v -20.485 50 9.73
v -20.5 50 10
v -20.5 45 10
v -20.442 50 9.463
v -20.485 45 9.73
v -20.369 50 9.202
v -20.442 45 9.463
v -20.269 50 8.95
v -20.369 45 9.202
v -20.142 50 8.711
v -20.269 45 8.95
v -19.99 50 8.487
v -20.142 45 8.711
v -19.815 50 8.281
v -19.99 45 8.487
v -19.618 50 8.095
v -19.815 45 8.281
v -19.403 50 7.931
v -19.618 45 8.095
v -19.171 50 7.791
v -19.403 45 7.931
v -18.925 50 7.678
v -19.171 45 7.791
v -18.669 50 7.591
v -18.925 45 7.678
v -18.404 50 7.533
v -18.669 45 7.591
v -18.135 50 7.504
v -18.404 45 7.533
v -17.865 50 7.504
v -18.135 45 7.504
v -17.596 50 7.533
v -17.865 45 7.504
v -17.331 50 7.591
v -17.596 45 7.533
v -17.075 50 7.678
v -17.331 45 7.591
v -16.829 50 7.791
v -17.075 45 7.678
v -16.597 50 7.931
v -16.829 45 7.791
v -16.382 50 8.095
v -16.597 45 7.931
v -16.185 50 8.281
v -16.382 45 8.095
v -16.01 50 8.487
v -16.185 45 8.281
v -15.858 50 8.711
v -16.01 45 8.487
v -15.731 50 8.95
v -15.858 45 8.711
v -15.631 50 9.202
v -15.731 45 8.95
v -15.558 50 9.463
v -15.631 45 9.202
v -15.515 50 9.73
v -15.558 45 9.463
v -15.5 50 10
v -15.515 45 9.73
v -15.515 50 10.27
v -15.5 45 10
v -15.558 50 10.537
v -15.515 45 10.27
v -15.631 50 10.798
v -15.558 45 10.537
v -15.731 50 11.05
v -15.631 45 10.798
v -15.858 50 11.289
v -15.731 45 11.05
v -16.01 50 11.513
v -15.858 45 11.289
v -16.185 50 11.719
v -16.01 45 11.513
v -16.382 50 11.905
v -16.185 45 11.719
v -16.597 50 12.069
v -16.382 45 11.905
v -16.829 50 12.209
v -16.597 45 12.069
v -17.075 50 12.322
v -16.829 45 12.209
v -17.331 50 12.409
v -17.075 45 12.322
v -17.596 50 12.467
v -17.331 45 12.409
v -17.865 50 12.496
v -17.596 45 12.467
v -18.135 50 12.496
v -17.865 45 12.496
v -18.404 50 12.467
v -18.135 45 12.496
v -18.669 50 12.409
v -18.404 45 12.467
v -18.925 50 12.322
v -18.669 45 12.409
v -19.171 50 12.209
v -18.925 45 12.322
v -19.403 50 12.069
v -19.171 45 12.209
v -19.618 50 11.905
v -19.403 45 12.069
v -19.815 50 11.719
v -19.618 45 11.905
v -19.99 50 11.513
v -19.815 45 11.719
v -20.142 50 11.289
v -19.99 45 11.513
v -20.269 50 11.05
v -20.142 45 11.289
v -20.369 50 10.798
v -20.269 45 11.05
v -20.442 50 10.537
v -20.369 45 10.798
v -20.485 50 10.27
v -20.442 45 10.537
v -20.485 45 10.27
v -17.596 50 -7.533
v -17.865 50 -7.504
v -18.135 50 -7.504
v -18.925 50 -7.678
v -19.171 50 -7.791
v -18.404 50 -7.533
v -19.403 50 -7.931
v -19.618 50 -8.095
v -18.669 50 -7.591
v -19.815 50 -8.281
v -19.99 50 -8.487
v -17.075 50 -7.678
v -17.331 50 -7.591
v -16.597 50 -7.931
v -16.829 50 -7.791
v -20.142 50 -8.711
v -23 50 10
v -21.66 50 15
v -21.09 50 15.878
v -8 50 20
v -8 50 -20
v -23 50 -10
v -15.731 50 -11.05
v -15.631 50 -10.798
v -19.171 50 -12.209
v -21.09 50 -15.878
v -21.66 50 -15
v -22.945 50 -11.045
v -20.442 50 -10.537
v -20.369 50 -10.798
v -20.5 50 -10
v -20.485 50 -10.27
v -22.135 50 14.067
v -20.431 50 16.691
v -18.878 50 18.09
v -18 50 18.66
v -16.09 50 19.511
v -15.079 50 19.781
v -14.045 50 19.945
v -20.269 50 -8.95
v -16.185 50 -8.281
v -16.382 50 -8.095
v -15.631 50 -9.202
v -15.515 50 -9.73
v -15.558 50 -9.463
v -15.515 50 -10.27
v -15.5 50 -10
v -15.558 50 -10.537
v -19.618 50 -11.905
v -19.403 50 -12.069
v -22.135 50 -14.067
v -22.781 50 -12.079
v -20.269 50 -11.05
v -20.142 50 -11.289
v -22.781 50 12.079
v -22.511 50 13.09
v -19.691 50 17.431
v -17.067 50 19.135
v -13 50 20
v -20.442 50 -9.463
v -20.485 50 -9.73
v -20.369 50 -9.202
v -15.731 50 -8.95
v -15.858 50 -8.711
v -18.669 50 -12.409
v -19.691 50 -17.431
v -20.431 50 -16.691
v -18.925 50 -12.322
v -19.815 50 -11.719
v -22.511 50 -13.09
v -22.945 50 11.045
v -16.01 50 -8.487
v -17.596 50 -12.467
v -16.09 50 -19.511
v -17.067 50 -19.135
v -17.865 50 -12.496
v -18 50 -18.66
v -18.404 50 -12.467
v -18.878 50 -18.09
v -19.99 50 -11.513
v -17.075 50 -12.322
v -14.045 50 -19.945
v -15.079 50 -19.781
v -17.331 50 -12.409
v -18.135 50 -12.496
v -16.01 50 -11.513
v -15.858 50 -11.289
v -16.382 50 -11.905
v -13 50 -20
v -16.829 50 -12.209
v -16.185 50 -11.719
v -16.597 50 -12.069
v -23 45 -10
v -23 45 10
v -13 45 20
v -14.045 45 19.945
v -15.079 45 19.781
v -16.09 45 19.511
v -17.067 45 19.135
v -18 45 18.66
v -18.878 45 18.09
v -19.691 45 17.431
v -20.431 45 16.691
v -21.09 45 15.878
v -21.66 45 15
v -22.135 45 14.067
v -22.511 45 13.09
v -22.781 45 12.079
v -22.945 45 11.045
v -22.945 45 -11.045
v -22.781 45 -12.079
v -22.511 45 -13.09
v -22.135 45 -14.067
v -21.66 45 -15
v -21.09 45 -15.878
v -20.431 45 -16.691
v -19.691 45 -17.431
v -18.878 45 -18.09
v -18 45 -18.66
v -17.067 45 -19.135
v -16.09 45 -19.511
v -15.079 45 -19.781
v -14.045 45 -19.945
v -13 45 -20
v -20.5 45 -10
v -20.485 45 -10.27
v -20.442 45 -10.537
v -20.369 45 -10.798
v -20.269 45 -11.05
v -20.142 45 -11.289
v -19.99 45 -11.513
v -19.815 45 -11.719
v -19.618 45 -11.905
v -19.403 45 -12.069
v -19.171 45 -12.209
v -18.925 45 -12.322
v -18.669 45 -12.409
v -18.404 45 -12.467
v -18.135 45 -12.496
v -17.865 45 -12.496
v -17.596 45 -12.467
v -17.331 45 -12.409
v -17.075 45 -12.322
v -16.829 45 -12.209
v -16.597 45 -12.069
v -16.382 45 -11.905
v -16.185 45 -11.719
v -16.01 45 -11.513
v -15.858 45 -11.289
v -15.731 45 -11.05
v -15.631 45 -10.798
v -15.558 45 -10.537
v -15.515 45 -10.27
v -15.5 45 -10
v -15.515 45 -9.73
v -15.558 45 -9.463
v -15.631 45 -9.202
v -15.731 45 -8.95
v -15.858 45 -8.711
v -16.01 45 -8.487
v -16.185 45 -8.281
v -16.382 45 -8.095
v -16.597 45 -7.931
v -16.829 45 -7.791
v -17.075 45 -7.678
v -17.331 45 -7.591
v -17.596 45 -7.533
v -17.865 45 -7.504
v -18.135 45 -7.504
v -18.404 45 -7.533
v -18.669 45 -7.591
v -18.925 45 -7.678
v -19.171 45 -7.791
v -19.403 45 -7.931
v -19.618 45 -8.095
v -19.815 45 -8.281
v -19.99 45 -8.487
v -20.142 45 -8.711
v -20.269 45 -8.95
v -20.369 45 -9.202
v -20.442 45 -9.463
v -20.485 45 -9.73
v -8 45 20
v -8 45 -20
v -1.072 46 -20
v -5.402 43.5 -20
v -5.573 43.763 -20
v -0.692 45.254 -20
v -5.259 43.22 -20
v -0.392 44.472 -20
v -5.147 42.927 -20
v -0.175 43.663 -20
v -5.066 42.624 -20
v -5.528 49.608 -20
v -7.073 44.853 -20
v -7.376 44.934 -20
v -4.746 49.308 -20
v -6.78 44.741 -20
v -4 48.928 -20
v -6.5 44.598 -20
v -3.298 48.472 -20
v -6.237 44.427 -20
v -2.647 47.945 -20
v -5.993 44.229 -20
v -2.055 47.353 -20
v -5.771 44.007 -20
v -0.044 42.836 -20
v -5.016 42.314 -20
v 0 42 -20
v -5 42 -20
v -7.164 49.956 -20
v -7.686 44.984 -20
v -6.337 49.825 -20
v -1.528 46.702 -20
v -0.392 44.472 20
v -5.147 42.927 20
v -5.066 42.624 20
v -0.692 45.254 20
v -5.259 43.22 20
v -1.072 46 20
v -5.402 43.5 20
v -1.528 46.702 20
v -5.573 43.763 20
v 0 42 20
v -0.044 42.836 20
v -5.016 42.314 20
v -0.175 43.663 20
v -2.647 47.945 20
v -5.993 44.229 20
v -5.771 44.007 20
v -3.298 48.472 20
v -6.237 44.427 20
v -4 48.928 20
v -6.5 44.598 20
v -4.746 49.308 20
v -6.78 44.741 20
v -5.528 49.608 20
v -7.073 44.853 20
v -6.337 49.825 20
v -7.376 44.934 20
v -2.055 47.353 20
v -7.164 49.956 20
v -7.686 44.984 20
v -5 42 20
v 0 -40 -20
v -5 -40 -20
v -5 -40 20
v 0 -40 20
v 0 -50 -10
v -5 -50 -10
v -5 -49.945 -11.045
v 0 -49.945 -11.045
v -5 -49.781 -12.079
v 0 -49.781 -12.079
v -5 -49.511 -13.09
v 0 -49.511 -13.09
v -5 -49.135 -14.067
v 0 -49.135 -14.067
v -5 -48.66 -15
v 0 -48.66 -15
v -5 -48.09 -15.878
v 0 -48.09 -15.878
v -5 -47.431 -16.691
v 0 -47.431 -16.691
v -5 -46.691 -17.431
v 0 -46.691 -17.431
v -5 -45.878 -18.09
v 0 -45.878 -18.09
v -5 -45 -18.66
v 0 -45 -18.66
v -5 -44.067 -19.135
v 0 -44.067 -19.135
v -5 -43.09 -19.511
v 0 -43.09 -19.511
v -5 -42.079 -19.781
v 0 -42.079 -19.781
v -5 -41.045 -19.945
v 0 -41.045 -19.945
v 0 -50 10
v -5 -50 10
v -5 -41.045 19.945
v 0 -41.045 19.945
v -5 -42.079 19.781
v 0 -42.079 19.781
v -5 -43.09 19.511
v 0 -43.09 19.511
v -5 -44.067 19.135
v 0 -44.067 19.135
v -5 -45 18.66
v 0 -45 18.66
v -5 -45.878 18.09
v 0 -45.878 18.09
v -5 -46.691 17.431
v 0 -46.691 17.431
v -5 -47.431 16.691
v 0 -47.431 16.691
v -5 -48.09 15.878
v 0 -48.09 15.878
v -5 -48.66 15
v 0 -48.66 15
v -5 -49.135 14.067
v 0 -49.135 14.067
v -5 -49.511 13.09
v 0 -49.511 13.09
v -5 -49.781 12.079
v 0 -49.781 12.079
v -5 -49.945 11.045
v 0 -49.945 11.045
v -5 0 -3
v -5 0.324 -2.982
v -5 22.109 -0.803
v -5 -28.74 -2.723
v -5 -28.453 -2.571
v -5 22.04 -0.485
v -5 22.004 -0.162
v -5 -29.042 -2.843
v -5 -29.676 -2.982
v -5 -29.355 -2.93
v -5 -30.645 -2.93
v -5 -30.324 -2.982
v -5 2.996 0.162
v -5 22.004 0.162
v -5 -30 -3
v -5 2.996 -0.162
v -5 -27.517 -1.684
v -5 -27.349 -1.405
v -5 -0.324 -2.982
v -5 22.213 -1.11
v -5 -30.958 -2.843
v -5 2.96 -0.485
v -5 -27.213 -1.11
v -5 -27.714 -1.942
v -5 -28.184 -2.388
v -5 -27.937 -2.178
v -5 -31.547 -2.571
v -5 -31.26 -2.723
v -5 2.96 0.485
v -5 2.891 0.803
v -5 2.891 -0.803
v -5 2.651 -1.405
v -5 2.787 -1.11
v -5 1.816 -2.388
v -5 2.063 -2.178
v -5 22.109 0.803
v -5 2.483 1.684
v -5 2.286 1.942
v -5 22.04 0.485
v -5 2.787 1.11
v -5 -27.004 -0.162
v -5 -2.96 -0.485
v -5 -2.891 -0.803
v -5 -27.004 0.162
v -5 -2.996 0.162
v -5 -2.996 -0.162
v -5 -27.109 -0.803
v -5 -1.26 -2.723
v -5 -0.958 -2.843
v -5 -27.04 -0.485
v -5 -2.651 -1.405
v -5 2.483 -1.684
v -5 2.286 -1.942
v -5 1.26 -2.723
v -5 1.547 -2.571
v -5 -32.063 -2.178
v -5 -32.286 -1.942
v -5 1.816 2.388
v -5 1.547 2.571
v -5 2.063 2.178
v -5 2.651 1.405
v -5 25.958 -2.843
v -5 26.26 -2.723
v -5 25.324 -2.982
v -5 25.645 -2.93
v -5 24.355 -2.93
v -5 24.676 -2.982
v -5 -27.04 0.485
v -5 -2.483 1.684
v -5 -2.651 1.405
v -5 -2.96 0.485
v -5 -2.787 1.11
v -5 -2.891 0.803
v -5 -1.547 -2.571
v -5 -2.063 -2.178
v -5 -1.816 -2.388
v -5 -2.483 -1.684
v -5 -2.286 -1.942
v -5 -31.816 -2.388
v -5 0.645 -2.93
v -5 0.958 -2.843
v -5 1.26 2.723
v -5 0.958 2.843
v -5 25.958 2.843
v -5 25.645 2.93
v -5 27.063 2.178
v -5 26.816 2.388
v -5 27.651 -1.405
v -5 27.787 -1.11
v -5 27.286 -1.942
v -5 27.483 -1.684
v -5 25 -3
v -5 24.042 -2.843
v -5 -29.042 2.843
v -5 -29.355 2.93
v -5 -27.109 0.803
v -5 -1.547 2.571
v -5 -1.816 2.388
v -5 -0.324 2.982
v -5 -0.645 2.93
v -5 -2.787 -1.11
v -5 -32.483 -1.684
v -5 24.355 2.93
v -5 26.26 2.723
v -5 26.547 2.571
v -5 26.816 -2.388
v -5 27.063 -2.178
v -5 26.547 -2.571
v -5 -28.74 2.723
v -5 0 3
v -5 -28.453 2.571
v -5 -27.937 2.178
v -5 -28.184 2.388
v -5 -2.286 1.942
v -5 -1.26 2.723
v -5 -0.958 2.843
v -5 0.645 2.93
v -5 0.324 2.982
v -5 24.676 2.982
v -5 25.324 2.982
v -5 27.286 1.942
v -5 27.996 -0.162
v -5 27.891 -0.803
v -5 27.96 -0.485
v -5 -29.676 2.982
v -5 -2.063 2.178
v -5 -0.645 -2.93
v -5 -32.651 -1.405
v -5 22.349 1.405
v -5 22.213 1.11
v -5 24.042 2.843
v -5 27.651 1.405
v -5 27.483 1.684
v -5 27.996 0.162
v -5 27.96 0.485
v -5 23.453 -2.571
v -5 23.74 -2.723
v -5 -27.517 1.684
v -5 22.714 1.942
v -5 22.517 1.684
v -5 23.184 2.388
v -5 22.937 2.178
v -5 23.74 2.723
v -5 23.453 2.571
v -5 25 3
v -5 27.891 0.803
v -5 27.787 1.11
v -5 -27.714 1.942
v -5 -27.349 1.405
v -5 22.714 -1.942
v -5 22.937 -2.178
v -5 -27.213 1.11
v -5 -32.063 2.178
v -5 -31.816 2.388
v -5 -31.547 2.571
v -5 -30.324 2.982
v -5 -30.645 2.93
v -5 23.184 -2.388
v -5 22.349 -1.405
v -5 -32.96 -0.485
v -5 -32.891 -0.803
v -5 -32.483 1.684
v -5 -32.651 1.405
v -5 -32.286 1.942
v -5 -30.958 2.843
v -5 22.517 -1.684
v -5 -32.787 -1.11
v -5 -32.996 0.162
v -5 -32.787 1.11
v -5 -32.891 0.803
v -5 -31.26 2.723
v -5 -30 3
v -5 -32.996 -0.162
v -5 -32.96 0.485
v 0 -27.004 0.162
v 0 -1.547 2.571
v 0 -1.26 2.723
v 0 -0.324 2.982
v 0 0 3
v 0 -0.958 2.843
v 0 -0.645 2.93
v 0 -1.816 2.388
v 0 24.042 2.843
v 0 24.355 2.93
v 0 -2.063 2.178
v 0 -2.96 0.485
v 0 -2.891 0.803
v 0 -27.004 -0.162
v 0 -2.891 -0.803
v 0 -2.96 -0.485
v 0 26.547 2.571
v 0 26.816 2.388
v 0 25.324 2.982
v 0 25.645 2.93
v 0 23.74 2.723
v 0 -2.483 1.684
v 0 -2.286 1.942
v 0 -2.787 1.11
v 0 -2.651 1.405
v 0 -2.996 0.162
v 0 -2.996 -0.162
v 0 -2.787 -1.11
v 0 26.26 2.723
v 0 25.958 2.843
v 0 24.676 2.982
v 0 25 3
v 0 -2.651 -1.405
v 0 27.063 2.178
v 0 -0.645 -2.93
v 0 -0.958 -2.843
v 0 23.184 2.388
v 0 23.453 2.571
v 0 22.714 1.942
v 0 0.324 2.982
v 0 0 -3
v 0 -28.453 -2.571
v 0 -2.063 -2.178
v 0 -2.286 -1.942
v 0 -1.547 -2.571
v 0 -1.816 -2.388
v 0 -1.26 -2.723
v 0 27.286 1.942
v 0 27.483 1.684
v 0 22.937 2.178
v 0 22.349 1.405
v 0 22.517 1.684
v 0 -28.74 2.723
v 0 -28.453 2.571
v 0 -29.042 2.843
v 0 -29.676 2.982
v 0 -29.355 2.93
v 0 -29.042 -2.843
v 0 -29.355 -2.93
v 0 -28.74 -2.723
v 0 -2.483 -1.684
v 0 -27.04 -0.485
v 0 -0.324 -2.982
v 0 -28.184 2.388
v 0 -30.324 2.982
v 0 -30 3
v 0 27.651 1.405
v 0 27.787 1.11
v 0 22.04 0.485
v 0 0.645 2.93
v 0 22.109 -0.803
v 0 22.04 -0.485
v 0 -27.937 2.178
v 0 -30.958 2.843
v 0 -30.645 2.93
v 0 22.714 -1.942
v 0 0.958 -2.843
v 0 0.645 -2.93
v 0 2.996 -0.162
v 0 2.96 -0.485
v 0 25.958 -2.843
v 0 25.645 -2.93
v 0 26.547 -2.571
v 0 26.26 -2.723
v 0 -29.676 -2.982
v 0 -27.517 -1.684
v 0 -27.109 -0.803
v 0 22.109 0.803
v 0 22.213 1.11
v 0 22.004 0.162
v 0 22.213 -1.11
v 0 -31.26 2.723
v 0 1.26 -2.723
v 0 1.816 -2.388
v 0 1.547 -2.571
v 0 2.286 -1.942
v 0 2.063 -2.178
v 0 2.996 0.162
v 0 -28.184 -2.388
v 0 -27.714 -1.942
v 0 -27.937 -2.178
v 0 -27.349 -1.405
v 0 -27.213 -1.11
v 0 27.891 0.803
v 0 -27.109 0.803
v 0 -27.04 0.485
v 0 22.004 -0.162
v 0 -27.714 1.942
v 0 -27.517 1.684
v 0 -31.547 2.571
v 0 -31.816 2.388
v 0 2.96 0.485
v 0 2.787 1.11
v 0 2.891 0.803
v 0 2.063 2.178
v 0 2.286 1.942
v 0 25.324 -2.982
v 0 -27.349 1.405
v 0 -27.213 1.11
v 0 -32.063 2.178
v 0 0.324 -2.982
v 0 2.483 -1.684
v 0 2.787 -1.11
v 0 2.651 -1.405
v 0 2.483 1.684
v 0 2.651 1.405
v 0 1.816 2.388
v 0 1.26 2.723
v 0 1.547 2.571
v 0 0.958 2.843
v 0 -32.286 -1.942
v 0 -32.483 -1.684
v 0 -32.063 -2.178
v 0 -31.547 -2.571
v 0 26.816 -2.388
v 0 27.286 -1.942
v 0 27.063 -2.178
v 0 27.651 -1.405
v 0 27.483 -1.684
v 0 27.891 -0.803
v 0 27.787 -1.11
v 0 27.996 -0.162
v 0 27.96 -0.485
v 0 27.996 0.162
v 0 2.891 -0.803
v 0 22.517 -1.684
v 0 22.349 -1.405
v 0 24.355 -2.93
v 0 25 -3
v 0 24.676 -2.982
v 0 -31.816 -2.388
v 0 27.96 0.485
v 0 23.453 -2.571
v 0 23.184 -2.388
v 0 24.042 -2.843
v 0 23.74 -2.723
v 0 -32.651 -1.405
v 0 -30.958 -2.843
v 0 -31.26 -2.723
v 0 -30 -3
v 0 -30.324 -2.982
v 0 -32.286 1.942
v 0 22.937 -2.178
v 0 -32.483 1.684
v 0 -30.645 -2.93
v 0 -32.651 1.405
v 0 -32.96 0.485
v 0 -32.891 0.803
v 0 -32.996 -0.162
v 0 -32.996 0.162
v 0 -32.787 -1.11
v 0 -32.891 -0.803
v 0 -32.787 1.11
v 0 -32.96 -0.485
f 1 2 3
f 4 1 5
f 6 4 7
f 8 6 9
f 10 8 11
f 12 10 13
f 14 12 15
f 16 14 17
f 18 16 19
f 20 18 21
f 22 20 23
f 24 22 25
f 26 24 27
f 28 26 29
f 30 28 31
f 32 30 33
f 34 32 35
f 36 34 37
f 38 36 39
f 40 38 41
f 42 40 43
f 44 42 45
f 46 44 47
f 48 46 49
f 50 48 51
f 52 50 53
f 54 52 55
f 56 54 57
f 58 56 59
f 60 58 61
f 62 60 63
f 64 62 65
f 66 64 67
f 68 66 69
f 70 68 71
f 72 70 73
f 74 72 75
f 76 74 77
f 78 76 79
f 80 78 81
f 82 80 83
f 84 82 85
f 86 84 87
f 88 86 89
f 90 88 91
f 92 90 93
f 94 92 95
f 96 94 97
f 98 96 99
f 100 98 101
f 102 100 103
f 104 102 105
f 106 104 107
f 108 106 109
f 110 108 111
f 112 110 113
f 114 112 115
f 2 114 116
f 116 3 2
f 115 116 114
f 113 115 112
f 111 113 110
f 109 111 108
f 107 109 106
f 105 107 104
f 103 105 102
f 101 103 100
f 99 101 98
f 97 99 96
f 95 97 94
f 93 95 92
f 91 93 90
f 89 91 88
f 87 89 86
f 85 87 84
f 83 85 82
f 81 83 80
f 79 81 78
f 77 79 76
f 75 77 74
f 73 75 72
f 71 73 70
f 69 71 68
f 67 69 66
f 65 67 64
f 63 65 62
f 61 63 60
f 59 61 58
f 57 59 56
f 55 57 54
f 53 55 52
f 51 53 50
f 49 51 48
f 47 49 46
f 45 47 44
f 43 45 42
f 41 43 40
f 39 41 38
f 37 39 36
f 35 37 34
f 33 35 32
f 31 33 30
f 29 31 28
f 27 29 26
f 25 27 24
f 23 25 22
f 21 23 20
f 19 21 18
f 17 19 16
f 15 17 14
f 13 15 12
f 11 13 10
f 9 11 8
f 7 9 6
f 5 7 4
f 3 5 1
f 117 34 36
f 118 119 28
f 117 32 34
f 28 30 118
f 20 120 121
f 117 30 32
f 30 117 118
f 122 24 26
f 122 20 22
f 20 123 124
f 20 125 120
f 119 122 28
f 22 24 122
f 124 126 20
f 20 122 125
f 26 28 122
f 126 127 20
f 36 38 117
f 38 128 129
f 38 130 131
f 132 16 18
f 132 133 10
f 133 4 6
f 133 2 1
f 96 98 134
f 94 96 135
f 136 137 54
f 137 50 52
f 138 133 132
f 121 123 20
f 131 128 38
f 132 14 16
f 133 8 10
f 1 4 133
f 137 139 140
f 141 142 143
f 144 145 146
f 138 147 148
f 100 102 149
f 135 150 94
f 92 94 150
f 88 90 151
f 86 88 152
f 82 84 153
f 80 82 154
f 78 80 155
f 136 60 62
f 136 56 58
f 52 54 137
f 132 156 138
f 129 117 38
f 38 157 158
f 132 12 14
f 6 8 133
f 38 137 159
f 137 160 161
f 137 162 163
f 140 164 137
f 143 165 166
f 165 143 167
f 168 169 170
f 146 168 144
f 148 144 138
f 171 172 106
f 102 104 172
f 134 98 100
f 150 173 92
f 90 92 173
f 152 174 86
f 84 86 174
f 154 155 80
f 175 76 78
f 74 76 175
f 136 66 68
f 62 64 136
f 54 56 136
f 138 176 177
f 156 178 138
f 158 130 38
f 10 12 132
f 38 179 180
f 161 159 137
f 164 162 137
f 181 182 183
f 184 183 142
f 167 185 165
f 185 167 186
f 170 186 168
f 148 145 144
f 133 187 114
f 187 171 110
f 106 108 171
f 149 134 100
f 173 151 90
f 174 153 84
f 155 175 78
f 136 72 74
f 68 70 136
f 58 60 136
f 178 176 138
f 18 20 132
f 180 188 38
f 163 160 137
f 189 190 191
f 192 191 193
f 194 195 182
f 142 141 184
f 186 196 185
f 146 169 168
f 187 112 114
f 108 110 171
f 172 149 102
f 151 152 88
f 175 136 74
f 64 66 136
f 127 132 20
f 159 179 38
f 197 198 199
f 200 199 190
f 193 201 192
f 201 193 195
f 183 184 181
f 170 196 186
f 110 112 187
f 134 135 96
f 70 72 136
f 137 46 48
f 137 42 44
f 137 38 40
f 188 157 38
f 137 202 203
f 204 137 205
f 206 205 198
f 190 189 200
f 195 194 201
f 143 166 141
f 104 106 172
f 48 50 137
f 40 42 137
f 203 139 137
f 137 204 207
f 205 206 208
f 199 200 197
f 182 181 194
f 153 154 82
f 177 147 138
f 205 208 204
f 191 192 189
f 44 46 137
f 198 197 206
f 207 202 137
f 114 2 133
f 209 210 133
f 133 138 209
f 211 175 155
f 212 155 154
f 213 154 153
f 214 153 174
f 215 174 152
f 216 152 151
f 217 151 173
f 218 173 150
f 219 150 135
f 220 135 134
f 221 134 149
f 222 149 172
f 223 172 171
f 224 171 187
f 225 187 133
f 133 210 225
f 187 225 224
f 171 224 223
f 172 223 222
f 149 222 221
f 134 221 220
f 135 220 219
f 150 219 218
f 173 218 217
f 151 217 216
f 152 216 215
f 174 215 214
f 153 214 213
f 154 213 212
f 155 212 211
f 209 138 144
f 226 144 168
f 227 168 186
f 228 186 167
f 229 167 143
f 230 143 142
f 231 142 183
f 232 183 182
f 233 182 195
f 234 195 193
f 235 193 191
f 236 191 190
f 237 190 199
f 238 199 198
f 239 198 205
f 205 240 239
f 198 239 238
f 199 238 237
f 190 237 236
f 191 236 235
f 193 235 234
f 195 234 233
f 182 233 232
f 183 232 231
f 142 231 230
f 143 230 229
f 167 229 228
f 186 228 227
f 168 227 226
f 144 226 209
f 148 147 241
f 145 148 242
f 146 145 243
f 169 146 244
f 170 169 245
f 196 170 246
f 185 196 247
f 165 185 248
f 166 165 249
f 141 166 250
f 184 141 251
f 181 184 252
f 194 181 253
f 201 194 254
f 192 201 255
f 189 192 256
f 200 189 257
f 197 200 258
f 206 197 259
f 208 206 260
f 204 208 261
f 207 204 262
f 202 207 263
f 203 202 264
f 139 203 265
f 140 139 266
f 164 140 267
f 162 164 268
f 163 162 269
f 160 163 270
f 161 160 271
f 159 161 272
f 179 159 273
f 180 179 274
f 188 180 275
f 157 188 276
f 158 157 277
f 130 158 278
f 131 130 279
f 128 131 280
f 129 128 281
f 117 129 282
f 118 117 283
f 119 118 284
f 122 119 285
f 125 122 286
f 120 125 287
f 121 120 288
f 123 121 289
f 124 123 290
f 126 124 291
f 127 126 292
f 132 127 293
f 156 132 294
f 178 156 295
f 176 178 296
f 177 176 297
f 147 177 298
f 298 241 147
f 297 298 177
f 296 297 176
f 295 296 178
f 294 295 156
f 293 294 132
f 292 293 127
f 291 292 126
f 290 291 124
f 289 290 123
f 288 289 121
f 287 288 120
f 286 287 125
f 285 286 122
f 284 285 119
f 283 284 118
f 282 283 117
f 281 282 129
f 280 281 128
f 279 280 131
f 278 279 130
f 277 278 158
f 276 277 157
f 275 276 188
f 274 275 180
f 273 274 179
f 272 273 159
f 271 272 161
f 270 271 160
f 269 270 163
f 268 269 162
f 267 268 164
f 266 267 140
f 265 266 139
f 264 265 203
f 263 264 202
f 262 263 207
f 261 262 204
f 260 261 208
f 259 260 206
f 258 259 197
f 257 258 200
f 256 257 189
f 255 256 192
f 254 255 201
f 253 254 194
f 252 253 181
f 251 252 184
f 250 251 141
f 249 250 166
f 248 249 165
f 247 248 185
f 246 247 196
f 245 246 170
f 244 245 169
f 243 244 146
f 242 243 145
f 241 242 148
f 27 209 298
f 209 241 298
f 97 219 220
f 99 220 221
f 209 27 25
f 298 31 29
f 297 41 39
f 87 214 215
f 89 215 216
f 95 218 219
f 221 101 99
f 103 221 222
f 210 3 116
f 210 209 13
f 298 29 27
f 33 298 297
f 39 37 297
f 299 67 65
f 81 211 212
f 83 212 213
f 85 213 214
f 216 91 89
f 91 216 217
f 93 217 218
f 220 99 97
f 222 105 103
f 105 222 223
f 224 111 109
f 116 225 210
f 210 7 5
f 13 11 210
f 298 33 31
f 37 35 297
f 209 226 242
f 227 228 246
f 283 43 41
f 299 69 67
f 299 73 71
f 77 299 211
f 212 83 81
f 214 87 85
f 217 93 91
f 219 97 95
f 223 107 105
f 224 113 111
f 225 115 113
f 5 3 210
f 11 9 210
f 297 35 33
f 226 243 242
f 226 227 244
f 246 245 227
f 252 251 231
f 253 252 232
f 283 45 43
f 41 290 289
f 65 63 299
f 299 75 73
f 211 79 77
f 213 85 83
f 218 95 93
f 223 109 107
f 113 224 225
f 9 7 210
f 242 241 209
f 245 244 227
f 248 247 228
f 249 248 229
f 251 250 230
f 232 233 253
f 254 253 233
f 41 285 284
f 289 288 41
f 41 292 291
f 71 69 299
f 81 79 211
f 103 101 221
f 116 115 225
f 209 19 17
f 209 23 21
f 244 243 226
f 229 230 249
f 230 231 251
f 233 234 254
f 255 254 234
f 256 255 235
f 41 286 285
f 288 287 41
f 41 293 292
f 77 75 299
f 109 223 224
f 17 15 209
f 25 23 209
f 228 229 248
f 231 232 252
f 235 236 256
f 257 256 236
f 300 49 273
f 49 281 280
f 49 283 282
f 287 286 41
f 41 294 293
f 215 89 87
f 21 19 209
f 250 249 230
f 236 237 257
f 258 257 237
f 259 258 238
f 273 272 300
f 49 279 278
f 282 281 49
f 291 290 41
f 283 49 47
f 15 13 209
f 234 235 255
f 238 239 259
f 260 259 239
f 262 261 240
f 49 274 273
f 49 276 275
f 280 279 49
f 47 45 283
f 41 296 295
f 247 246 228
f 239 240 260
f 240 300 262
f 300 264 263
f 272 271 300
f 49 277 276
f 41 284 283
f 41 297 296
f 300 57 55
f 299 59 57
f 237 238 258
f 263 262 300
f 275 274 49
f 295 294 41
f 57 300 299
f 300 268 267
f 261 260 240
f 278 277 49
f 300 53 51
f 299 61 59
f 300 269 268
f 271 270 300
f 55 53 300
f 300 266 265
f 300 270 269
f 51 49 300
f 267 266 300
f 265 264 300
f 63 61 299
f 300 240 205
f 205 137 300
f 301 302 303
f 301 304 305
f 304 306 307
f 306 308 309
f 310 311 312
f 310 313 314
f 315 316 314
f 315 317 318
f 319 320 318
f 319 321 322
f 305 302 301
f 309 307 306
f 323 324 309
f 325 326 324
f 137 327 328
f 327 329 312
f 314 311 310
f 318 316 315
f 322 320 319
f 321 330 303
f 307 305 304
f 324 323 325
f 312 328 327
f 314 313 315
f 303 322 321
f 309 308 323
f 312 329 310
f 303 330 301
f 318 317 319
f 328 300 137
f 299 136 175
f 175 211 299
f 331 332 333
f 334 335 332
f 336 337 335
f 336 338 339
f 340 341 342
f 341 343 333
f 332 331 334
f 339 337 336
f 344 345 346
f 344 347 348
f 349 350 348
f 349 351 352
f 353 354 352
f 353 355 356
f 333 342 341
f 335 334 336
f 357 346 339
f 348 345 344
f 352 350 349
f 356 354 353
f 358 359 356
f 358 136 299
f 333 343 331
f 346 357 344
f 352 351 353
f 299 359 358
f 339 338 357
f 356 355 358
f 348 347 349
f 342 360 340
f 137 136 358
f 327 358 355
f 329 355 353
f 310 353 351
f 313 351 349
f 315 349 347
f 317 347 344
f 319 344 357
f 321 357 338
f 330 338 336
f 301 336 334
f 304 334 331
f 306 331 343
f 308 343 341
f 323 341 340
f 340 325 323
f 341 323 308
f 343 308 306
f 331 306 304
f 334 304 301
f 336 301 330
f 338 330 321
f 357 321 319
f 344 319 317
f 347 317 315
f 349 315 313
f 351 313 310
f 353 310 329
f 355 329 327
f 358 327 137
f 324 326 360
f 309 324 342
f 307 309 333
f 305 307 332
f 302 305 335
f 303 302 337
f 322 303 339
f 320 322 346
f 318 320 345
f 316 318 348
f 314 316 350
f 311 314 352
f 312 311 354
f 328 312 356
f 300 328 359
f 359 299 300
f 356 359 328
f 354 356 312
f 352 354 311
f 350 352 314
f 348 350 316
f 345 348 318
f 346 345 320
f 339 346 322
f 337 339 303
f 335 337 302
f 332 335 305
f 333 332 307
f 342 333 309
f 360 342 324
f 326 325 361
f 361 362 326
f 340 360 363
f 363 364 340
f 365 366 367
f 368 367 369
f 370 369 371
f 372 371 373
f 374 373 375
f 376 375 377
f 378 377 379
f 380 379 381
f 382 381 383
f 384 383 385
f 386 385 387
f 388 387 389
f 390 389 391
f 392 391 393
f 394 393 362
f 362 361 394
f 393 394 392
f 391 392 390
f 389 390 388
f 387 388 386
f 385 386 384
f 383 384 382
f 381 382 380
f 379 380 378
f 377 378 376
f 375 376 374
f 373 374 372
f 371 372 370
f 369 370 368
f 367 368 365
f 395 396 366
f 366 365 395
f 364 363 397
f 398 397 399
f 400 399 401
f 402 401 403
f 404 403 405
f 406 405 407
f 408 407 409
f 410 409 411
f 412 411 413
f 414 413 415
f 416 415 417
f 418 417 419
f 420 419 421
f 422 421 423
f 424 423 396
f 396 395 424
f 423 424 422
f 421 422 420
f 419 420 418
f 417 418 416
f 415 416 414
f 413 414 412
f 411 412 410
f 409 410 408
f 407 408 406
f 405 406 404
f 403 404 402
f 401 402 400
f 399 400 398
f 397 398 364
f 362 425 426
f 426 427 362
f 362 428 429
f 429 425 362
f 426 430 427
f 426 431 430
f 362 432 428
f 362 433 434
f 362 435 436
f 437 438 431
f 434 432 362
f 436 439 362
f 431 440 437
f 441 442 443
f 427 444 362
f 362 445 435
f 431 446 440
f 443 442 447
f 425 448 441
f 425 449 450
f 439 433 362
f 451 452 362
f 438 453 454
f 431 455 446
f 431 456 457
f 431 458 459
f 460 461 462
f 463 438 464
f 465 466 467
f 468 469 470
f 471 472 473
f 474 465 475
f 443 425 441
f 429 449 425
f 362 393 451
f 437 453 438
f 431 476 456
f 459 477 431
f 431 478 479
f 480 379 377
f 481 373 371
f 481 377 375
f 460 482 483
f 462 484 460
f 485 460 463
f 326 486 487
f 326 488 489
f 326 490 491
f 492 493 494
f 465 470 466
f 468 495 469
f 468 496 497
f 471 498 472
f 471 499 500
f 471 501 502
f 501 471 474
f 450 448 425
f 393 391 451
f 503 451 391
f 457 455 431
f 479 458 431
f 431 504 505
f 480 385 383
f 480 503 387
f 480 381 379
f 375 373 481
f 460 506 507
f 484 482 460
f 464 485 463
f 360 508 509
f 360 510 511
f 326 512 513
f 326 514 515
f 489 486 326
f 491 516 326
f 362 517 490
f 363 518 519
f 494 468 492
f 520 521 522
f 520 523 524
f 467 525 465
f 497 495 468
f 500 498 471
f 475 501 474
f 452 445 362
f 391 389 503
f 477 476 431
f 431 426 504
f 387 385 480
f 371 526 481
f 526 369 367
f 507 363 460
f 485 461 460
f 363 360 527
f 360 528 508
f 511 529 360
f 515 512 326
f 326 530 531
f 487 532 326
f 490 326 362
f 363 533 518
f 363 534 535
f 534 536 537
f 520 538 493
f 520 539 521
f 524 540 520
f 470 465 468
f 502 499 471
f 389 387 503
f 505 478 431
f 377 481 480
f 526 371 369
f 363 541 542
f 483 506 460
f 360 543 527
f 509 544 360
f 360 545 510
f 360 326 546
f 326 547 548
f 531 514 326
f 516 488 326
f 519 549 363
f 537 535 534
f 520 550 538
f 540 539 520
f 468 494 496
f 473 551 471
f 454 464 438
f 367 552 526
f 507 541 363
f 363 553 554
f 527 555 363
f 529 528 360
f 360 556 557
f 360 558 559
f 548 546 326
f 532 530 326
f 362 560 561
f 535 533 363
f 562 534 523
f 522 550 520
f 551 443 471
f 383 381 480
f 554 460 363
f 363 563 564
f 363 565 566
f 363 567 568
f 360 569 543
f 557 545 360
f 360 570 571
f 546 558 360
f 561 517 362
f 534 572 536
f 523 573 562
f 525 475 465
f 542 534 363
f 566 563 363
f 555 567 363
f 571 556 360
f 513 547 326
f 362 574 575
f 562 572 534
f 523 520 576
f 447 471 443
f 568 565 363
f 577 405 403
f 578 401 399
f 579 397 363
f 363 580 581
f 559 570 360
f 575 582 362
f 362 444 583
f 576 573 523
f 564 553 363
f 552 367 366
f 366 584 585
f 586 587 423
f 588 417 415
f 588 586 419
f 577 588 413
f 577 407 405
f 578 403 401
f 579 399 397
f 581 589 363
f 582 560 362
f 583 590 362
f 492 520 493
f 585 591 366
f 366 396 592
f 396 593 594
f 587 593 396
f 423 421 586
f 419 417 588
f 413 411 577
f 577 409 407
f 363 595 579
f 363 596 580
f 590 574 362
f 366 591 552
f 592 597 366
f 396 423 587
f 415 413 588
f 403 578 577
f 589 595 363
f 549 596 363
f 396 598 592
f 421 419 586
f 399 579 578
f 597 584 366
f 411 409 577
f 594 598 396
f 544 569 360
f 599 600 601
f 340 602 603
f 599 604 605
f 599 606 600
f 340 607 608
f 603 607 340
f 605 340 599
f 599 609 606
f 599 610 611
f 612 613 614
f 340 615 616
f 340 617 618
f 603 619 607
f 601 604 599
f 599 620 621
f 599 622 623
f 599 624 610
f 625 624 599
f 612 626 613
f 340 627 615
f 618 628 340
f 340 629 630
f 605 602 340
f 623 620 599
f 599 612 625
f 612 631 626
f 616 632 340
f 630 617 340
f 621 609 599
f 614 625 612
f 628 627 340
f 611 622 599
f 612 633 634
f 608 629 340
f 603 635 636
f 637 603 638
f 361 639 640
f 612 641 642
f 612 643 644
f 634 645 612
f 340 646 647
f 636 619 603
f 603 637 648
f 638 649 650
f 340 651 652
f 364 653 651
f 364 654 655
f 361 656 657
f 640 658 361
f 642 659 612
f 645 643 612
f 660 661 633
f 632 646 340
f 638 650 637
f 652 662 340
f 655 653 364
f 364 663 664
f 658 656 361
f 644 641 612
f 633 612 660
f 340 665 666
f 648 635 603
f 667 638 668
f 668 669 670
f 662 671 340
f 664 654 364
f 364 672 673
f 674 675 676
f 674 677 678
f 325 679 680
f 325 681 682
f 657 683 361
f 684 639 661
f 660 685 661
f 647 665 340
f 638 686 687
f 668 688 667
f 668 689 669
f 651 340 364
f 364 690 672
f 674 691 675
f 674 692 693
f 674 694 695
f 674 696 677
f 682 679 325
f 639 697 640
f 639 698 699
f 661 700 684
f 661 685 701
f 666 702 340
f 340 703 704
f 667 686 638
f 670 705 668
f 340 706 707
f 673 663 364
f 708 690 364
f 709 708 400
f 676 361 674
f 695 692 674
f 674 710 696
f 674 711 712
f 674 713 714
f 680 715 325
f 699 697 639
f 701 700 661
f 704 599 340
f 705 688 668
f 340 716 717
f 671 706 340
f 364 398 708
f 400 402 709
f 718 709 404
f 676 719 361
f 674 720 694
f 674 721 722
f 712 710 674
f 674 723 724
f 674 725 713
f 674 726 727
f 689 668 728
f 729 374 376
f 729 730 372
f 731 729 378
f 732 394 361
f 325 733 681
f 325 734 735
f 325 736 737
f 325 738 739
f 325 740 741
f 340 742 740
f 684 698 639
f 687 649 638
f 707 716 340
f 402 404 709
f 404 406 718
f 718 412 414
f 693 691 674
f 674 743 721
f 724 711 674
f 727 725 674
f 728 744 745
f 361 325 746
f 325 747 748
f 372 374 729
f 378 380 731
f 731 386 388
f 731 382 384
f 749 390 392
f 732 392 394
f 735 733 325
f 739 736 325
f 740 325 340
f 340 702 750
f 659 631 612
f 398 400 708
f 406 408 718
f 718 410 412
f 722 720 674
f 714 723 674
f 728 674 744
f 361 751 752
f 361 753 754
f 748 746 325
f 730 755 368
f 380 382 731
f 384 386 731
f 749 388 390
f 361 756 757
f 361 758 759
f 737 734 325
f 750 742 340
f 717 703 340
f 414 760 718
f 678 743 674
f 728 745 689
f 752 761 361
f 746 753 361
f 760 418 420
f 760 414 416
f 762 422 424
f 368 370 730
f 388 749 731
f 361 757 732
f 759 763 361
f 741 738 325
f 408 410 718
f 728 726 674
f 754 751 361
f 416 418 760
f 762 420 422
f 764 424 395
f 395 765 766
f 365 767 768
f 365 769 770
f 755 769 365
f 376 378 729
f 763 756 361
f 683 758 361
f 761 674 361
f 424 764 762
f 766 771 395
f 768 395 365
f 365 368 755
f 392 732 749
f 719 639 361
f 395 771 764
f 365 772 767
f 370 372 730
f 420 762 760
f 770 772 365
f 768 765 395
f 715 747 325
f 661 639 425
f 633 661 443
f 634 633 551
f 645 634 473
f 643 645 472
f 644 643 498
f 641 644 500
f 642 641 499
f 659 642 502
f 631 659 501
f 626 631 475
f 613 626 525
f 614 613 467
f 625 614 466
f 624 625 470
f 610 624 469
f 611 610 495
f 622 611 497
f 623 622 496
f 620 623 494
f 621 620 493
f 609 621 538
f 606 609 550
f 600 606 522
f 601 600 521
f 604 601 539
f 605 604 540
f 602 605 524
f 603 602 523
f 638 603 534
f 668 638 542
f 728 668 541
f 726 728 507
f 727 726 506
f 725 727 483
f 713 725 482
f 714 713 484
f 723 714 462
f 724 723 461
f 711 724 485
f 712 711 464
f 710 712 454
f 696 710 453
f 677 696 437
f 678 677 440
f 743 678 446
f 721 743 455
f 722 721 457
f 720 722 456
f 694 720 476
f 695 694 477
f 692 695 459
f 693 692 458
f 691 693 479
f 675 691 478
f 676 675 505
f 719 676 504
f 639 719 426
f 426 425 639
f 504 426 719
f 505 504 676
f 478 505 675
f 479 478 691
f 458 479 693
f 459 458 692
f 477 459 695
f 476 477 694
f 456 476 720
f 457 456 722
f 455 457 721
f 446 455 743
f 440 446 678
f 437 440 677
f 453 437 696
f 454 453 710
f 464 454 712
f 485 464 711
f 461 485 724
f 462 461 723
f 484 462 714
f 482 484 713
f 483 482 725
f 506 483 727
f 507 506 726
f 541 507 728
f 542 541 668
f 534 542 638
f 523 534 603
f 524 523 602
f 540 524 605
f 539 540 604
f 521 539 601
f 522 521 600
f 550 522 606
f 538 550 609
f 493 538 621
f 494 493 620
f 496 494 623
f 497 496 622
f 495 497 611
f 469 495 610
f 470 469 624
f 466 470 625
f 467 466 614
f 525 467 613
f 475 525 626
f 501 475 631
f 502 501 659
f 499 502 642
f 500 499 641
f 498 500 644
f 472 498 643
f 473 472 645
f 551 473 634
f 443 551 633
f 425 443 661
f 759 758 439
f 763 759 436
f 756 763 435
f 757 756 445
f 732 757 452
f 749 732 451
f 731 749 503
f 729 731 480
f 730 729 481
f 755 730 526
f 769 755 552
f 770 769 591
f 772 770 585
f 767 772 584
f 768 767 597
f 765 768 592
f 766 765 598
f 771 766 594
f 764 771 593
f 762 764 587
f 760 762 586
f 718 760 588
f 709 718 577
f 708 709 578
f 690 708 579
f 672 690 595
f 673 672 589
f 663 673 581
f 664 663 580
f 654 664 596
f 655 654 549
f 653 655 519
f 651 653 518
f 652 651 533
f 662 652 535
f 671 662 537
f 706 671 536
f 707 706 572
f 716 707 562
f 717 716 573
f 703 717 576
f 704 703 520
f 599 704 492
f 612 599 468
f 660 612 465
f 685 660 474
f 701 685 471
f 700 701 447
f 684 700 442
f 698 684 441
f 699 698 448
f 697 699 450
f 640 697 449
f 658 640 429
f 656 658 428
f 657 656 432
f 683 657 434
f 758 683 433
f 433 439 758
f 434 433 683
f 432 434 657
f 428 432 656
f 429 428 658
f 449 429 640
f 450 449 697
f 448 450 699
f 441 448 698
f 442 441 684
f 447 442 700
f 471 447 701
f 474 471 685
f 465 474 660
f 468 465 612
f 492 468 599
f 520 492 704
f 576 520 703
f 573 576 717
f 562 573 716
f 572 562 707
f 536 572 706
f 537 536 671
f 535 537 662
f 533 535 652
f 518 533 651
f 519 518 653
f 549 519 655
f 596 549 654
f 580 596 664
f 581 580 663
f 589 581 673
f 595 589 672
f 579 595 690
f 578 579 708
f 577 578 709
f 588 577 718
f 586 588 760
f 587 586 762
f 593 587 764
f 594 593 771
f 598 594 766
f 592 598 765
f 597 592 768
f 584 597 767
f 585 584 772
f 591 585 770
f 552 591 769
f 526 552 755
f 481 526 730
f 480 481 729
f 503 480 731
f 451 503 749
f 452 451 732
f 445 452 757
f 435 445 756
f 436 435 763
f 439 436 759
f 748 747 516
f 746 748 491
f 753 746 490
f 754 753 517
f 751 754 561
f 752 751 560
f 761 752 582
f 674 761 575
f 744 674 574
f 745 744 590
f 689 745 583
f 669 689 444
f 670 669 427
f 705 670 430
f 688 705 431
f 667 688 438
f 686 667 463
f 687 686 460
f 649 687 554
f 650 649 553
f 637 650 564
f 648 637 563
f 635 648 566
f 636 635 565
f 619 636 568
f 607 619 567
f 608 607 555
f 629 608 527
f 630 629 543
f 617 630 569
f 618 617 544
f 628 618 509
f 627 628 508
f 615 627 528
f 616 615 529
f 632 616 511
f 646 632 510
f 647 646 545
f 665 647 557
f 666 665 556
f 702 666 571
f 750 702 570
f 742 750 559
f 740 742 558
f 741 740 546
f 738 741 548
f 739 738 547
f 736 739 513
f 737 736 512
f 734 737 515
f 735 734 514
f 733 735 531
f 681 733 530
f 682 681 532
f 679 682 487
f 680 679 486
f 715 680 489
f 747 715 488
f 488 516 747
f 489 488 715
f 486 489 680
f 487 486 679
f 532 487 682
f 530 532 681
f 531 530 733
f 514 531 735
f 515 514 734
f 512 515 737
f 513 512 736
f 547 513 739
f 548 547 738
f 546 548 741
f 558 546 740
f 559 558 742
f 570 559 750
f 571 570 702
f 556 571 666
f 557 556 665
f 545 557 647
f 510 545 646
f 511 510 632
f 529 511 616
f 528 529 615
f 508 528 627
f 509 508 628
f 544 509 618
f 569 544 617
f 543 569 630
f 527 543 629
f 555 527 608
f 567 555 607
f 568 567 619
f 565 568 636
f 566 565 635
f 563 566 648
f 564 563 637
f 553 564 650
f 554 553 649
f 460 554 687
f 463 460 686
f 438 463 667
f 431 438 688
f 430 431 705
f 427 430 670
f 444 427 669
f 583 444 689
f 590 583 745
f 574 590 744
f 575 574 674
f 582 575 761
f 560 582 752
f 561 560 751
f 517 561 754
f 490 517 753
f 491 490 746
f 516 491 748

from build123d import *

# Parameters (mm, degrees)
SKETCH1_W                    = 40
SKETCH1_H                    = 100
BASE_FLANGE1_DEPTH           = 5
EDGE_FLANGE1_STRIP_W         = 26
EDGE_FLANGE1_STRIP_H         = 5
EDGE_FLANGE1_STRIP_CUT_DEPTH = 40
EDGE_FLANGE1_DEPTH           = 40
SKETCH9_R                    = 2.5
CUT_EXTRUDE1_DEPTH           = 10
FILLET1_R                    = 10
SKETCH16_R                   = 3
CUT_EXTRUDE2_DEPTH           = 10


# Sheet-metal steps are written as plain solids
with BuildPart() as part:
    # Sketch1 → Base-Flange1 (new body)
    with BuildSketch(Plane(origin=(0, 0, 0), x_dir=(0, 0, -1), z_dir=(1, 0, 0))):
        Rectangle(SKETCH1_W, SKETCH1_H)
    extrude(amount=-BASE_FLANGE1_DEPTH)

    # Edge-Flange1 strip (across the edge) → Edge-Flange1 strip cut (cut)
    with BuildSketch(Plane(origin=(-5, 50, 20), x_dir=(0, -1, 0), z_dir=(0, 0, -1))):
        with Locations((-5, -2.5)):
            Rectangle(EDGE_FLANGE1_STRIP_W, EDGE_FLANGE1_STRIP_H)
    extrude(amount=EDGE_FLANGE1_STRIP_CUT_DEPTH, mode=Mode.SUBTRACT)

    # Edge-Flange1 section (across the edge) → Edge-Flange1 (add)
    with BuildSketch(Plane(origin=(-5, 50, 20), x_dir=(0, -1, 0), z_dir=(0, 0, -1))):
        with BuildLine():
            Line((0, 3), (0, 18))
            Line((0, 18), (5, 18))
            Line((5, 18), (5, 3))
            ThreePointArc((5, 3), (5.878679656, 0.878679656), (8, 0))
            Line((8, 0), (8, -5))
            ThreePointArc((8, -5), (2.343145751, -2.656854249), (0, 3))
        make_face()
    extrude(amount=EDGE_FLANGE1_DEPTH)

    # Sketch9 → Cut-Extrude1 (cut)
    with BuildSketch(Plane(origin=(0, 50, 0), x_dir=(1, 0, 0), z_dir=(0, 1, 0))):
        with Locations(Location((-18, 10, 0), (0, 0, 180))):
            Circle(SKETCH9_R)
        with Locations(Location((-18, -10, 0), (0, 0, 180))):
            Circle(SKETCH9_R)
    extrude(amount=-CUT_EXTRUDE1_DEPTH, mode=Mode.SUBTRACT)

    # Fillet1
    fillet1_edges = [part.edges().sort_by_distance(p)[0] for p in [
        (-23, 47.5, 20),
        (-23, 47.5, -20),
        (-2.5, -50, -20),
        (-2.5, -50, 20),
    ]]
    fillet(fillet1_edges, radius=FILLET1_R)

    # Sketch16 → Cut-Extrude2 (cut)
    with BuildSketch(Plane(origin=(0, 0, 0), x_dir=(0, 0, -1), z_dir=(1, 0, 0))):
        Circle(SKETCH16_R)
        with Locations((0, -30)):
            Circle(SKETCH16_R)
        with Locations((0, 25)):
            Circle(SKETCH16_R)
    extrude(amount=-CUT_EXTRUDE2_DEPTH, mode=Mode.SUBTRACT)


solid = part.part
